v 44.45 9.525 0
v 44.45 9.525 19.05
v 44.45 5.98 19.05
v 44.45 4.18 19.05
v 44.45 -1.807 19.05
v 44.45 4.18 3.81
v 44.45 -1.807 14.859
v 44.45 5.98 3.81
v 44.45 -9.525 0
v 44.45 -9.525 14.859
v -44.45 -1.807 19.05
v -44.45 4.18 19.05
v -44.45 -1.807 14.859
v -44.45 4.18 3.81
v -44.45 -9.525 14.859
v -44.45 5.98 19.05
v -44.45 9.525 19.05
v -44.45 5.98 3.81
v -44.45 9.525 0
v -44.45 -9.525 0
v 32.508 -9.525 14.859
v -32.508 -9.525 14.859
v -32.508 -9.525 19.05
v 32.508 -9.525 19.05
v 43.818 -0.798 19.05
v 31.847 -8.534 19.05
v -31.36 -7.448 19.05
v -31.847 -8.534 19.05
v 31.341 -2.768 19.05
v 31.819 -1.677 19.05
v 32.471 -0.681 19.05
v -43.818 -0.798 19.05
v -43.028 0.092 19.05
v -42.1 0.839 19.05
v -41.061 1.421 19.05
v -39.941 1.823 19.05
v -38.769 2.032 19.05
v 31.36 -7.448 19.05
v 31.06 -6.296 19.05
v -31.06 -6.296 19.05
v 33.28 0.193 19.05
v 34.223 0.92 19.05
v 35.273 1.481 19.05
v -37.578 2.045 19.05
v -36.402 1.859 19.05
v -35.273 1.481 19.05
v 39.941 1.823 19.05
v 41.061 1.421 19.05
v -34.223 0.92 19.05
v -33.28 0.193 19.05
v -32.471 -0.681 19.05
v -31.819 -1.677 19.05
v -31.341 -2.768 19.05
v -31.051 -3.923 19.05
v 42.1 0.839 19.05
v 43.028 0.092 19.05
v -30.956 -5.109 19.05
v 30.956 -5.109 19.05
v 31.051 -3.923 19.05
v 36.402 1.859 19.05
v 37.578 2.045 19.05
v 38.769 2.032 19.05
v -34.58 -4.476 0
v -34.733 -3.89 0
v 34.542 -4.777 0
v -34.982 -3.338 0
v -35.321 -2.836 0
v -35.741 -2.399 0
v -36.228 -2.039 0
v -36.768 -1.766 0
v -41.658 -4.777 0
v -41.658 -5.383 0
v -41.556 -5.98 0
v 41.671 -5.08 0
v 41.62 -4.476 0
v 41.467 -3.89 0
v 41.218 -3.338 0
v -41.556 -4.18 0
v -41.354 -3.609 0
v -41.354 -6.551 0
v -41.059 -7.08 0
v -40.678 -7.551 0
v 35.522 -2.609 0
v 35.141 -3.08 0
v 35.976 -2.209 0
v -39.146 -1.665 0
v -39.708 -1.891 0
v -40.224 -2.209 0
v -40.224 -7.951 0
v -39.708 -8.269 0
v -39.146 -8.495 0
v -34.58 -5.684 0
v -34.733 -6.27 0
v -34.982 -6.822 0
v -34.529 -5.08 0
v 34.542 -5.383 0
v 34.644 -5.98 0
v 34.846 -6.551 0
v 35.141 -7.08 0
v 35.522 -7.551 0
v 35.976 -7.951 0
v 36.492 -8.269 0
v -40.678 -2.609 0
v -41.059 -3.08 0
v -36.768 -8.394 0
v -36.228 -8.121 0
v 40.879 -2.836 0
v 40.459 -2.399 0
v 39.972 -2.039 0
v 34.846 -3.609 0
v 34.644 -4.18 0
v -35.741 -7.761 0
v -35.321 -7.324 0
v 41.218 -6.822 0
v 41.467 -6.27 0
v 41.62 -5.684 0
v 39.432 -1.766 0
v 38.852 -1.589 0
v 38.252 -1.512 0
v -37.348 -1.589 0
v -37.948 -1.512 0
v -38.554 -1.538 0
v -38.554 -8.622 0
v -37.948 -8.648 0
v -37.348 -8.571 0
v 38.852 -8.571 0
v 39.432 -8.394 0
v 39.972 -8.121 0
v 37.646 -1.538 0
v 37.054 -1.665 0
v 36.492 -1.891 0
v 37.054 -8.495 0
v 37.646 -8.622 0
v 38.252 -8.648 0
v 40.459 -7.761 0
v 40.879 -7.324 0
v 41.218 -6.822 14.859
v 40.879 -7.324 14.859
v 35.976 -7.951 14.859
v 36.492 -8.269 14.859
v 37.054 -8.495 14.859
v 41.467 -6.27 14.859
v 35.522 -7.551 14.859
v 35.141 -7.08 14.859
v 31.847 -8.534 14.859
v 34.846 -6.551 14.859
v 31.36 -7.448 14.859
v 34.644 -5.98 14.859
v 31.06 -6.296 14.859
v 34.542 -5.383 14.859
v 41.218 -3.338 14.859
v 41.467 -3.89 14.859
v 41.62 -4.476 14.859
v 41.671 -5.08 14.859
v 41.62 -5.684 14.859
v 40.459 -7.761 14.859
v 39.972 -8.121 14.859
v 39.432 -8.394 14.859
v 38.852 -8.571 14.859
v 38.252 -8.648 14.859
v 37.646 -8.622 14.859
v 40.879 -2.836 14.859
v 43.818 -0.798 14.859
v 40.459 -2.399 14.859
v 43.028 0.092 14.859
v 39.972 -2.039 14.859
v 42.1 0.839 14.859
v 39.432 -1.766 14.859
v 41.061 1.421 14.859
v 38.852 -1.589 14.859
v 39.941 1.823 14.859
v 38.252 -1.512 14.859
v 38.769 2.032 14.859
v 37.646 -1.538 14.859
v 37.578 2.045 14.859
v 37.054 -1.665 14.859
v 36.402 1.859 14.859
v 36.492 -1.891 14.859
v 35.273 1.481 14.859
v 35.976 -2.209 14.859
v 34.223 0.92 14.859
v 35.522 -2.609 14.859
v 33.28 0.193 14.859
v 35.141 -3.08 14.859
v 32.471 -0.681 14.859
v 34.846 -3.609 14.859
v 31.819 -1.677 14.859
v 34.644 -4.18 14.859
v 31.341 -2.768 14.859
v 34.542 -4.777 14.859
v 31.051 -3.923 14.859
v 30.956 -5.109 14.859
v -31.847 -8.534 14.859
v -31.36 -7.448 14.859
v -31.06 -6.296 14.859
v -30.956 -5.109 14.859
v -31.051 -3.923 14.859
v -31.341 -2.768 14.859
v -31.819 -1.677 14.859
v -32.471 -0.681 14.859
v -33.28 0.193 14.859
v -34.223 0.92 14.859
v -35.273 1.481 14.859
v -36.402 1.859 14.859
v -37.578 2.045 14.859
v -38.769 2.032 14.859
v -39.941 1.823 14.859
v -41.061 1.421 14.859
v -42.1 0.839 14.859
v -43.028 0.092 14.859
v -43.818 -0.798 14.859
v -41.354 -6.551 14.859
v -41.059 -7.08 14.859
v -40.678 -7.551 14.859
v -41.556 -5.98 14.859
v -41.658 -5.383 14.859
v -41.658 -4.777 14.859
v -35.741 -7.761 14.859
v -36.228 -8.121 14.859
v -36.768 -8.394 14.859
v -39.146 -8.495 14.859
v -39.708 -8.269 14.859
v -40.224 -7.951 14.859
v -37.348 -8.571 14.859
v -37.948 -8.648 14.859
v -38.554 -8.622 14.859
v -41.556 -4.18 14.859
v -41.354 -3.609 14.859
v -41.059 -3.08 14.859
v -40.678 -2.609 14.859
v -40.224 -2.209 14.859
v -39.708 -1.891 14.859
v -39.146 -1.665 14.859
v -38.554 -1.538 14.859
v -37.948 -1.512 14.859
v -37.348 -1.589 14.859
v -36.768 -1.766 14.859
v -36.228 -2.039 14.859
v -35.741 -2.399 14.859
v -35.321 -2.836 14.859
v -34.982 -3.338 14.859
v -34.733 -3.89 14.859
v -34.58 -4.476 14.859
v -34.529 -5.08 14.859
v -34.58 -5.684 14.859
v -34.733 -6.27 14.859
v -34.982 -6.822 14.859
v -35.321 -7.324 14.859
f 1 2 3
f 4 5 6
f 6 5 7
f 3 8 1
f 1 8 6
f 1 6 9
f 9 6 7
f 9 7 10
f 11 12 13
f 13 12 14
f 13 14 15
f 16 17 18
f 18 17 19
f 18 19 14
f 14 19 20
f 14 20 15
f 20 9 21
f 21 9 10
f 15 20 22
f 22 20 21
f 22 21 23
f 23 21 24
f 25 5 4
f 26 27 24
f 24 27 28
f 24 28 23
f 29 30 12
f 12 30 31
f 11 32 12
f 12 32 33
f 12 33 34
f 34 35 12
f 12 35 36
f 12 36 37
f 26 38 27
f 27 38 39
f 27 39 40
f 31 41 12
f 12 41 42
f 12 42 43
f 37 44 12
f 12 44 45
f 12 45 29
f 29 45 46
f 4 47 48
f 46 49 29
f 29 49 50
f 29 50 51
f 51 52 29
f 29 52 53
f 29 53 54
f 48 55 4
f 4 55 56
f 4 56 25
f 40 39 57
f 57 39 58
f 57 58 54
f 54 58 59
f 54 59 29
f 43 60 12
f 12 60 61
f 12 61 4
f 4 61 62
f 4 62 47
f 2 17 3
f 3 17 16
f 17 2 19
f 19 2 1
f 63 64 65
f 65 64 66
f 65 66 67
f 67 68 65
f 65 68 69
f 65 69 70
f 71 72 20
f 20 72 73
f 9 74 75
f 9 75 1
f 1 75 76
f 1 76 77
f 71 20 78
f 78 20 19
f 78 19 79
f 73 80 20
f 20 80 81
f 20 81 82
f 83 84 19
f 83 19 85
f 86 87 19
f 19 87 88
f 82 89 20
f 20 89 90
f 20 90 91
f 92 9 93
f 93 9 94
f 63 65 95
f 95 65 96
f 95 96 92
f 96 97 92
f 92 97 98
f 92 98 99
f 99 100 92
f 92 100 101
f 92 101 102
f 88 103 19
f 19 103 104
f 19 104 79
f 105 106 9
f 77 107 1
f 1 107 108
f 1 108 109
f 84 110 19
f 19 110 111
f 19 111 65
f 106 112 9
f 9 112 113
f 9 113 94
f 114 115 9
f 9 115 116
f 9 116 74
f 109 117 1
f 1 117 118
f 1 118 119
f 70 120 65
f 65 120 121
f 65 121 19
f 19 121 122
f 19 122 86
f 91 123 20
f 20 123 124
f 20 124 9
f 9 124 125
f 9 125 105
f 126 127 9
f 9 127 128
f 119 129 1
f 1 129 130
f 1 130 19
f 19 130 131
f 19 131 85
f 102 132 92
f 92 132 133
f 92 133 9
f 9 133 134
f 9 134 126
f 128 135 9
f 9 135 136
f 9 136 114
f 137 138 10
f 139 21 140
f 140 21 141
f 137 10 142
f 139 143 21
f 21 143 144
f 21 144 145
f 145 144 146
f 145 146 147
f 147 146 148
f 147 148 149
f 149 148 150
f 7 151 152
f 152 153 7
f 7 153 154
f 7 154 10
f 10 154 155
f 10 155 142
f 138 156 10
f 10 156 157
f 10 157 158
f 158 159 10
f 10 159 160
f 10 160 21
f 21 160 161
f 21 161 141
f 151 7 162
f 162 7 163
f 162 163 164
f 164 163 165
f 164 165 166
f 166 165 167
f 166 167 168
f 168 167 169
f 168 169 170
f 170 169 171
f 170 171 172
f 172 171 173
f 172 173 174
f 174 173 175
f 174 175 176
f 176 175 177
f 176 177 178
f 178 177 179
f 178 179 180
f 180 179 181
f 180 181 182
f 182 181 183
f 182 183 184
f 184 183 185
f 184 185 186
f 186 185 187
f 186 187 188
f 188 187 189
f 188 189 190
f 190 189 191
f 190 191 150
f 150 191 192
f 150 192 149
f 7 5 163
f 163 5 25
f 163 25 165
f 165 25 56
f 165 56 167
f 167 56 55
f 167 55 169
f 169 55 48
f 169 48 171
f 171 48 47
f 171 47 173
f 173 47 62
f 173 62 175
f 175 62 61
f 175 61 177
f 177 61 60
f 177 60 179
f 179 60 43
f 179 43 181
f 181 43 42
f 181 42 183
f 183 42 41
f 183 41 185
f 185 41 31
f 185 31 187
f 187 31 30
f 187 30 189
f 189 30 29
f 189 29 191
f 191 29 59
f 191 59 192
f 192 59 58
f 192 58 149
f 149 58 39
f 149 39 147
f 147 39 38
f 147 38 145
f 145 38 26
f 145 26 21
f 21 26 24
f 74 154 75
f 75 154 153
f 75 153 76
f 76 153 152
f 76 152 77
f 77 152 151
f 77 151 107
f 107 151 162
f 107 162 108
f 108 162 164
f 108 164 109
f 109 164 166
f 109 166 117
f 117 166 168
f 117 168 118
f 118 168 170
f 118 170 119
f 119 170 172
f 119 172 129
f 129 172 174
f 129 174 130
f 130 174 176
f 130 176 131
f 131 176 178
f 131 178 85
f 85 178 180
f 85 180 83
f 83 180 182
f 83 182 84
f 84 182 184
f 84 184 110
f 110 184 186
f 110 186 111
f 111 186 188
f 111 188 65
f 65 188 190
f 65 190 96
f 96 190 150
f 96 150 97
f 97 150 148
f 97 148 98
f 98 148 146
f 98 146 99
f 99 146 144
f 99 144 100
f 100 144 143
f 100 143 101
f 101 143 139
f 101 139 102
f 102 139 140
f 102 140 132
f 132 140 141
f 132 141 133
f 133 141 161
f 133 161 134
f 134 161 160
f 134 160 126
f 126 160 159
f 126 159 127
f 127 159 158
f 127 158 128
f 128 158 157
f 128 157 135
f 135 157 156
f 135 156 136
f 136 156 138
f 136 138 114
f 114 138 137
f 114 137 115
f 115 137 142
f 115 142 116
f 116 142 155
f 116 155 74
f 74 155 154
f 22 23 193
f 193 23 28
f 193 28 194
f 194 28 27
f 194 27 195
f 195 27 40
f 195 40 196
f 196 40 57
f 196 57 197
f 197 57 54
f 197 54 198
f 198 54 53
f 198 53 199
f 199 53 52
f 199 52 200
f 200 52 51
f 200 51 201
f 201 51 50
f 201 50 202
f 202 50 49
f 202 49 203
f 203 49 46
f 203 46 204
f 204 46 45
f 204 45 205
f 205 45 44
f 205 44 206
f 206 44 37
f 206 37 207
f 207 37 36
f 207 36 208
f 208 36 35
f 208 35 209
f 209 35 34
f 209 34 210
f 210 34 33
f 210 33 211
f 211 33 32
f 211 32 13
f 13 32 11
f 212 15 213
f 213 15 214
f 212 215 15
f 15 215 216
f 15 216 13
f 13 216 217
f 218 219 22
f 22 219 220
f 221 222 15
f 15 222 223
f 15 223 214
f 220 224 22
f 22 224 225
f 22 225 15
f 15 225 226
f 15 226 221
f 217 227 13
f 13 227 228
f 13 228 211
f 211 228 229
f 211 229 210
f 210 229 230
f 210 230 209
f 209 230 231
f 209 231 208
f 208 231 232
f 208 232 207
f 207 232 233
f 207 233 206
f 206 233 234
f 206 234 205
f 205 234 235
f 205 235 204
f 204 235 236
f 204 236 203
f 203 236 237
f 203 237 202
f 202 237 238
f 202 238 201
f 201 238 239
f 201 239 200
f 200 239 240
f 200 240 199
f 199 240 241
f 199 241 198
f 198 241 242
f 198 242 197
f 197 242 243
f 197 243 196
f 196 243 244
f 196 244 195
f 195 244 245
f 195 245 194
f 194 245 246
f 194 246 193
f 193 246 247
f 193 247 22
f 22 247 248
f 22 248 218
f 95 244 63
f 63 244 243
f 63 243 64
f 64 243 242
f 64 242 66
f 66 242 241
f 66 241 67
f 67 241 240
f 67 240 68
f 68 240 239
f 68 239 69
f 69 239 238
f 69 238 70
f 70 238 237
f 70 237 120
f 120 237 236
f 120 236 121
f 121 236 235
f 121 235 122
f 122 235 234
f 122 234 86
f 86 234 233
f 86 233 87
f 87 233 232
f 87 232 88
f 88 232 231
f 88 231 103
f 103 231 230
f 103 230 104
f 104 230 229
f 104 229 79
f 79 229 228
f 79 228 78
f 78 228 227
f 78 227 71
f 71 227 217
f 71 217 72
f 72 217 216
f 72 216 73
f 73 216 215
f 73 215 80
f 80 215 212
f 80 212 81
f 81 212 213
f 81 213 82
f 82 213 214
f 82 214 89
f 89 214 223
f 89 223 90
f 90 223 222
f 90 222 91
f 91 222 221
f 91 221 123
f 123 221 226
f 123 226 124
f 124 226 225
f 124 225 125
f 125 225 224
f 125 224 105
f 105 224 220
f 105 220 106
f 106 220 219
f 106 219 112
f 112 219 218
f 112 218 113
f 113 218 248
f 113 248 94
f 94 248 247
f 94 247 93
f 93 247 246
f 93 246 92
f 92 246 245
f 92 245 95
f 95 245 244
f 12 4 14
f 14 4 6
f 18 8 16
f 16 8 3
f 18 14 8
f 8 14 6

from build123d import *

# Parameters (mm, degrees)
SKETCH1_W                                            = 88.9
SKETCH1_H                                            = 19.05
BOSS_EXTRUDE1_DEPTH                                  = 19.05
CBORE_FOR_1_4_BINDING_HEAD_MACHINE_SCREW_D           = 7.14248
CBORE_FOR_1_4_BINDING_HEAD_MACHINE_SCREW_CBORE_D     = 14.2875
CBORE_FOR_1_4_BINDING_HEAD_MACHINE_SCREW_CBORE_DEPTH = 4.191
SKETCH5_W                                            = 98.267434004
SKETCH5_H                                            = 1.8
CUT_EXTRUDE1_DEPTH                                   = 15.24
SKETCH6_R                                            = 6.169746407
SKETCH6_R_2                                          = 8.762598039
CUT_EXTRUDE2_DEPTH                                   = 15.24


with BuildPart() as part:
    # Sketch1 → Boss-Extrude1 (new body)
    with BuildSketch(Plane.XY):
        Rectangle(SKETCH1_W, SKETCH1_H)
    extrude(amount=BOSS_EXTRUDE1_DEPTH)

    # CBORE for 1/4 Binding Head Machine Screw1 (through all)
    with Locations(Plane.XY.offset(19.05)):
        with Locations((-38.1, -5.08), (38.1, -5.08)):
            CounterBoreHole(CBORE_FOR_1_4_BINDING_HEAD_MACHINE_SCREW_D / 2, CBORE_FOR_1_4_BINDING_HEAD_MACHINE_SCREW_CBORE_D / 2, CBORE_FOR_1_4_BINDING_HEAD_MACHINE_SCREW_CBORE_DEPTH)

    # Sketch5 → Cut-Extrude1 (cut)
    with BuildSketch(Plane.XY.offset(19.05)):
        with Locations((0, 5.08)):
            Rectangle(SKETCH5_W, SKETCH5_H)
    extrude(amount=-CUT_EXTRUDE1_DEPTH, mode=Mode.SUBTRACT)

    # Sketch6 → Cut-Extrude2 (cut)
    with BuildSketch(Plane.XY.offset(14.859)):
        with Locations((-47.154600555, -9.207193904)):
            Circle(SKETCH6_R)
        with Locations((49.650008249, -12.821232633)):
            Circle(SKETCH6_R_2)
    extrude(amount=CUT_EXTRUDE2_DEPTH, mode=Mode.SUBTRACT)


solid = part.part
